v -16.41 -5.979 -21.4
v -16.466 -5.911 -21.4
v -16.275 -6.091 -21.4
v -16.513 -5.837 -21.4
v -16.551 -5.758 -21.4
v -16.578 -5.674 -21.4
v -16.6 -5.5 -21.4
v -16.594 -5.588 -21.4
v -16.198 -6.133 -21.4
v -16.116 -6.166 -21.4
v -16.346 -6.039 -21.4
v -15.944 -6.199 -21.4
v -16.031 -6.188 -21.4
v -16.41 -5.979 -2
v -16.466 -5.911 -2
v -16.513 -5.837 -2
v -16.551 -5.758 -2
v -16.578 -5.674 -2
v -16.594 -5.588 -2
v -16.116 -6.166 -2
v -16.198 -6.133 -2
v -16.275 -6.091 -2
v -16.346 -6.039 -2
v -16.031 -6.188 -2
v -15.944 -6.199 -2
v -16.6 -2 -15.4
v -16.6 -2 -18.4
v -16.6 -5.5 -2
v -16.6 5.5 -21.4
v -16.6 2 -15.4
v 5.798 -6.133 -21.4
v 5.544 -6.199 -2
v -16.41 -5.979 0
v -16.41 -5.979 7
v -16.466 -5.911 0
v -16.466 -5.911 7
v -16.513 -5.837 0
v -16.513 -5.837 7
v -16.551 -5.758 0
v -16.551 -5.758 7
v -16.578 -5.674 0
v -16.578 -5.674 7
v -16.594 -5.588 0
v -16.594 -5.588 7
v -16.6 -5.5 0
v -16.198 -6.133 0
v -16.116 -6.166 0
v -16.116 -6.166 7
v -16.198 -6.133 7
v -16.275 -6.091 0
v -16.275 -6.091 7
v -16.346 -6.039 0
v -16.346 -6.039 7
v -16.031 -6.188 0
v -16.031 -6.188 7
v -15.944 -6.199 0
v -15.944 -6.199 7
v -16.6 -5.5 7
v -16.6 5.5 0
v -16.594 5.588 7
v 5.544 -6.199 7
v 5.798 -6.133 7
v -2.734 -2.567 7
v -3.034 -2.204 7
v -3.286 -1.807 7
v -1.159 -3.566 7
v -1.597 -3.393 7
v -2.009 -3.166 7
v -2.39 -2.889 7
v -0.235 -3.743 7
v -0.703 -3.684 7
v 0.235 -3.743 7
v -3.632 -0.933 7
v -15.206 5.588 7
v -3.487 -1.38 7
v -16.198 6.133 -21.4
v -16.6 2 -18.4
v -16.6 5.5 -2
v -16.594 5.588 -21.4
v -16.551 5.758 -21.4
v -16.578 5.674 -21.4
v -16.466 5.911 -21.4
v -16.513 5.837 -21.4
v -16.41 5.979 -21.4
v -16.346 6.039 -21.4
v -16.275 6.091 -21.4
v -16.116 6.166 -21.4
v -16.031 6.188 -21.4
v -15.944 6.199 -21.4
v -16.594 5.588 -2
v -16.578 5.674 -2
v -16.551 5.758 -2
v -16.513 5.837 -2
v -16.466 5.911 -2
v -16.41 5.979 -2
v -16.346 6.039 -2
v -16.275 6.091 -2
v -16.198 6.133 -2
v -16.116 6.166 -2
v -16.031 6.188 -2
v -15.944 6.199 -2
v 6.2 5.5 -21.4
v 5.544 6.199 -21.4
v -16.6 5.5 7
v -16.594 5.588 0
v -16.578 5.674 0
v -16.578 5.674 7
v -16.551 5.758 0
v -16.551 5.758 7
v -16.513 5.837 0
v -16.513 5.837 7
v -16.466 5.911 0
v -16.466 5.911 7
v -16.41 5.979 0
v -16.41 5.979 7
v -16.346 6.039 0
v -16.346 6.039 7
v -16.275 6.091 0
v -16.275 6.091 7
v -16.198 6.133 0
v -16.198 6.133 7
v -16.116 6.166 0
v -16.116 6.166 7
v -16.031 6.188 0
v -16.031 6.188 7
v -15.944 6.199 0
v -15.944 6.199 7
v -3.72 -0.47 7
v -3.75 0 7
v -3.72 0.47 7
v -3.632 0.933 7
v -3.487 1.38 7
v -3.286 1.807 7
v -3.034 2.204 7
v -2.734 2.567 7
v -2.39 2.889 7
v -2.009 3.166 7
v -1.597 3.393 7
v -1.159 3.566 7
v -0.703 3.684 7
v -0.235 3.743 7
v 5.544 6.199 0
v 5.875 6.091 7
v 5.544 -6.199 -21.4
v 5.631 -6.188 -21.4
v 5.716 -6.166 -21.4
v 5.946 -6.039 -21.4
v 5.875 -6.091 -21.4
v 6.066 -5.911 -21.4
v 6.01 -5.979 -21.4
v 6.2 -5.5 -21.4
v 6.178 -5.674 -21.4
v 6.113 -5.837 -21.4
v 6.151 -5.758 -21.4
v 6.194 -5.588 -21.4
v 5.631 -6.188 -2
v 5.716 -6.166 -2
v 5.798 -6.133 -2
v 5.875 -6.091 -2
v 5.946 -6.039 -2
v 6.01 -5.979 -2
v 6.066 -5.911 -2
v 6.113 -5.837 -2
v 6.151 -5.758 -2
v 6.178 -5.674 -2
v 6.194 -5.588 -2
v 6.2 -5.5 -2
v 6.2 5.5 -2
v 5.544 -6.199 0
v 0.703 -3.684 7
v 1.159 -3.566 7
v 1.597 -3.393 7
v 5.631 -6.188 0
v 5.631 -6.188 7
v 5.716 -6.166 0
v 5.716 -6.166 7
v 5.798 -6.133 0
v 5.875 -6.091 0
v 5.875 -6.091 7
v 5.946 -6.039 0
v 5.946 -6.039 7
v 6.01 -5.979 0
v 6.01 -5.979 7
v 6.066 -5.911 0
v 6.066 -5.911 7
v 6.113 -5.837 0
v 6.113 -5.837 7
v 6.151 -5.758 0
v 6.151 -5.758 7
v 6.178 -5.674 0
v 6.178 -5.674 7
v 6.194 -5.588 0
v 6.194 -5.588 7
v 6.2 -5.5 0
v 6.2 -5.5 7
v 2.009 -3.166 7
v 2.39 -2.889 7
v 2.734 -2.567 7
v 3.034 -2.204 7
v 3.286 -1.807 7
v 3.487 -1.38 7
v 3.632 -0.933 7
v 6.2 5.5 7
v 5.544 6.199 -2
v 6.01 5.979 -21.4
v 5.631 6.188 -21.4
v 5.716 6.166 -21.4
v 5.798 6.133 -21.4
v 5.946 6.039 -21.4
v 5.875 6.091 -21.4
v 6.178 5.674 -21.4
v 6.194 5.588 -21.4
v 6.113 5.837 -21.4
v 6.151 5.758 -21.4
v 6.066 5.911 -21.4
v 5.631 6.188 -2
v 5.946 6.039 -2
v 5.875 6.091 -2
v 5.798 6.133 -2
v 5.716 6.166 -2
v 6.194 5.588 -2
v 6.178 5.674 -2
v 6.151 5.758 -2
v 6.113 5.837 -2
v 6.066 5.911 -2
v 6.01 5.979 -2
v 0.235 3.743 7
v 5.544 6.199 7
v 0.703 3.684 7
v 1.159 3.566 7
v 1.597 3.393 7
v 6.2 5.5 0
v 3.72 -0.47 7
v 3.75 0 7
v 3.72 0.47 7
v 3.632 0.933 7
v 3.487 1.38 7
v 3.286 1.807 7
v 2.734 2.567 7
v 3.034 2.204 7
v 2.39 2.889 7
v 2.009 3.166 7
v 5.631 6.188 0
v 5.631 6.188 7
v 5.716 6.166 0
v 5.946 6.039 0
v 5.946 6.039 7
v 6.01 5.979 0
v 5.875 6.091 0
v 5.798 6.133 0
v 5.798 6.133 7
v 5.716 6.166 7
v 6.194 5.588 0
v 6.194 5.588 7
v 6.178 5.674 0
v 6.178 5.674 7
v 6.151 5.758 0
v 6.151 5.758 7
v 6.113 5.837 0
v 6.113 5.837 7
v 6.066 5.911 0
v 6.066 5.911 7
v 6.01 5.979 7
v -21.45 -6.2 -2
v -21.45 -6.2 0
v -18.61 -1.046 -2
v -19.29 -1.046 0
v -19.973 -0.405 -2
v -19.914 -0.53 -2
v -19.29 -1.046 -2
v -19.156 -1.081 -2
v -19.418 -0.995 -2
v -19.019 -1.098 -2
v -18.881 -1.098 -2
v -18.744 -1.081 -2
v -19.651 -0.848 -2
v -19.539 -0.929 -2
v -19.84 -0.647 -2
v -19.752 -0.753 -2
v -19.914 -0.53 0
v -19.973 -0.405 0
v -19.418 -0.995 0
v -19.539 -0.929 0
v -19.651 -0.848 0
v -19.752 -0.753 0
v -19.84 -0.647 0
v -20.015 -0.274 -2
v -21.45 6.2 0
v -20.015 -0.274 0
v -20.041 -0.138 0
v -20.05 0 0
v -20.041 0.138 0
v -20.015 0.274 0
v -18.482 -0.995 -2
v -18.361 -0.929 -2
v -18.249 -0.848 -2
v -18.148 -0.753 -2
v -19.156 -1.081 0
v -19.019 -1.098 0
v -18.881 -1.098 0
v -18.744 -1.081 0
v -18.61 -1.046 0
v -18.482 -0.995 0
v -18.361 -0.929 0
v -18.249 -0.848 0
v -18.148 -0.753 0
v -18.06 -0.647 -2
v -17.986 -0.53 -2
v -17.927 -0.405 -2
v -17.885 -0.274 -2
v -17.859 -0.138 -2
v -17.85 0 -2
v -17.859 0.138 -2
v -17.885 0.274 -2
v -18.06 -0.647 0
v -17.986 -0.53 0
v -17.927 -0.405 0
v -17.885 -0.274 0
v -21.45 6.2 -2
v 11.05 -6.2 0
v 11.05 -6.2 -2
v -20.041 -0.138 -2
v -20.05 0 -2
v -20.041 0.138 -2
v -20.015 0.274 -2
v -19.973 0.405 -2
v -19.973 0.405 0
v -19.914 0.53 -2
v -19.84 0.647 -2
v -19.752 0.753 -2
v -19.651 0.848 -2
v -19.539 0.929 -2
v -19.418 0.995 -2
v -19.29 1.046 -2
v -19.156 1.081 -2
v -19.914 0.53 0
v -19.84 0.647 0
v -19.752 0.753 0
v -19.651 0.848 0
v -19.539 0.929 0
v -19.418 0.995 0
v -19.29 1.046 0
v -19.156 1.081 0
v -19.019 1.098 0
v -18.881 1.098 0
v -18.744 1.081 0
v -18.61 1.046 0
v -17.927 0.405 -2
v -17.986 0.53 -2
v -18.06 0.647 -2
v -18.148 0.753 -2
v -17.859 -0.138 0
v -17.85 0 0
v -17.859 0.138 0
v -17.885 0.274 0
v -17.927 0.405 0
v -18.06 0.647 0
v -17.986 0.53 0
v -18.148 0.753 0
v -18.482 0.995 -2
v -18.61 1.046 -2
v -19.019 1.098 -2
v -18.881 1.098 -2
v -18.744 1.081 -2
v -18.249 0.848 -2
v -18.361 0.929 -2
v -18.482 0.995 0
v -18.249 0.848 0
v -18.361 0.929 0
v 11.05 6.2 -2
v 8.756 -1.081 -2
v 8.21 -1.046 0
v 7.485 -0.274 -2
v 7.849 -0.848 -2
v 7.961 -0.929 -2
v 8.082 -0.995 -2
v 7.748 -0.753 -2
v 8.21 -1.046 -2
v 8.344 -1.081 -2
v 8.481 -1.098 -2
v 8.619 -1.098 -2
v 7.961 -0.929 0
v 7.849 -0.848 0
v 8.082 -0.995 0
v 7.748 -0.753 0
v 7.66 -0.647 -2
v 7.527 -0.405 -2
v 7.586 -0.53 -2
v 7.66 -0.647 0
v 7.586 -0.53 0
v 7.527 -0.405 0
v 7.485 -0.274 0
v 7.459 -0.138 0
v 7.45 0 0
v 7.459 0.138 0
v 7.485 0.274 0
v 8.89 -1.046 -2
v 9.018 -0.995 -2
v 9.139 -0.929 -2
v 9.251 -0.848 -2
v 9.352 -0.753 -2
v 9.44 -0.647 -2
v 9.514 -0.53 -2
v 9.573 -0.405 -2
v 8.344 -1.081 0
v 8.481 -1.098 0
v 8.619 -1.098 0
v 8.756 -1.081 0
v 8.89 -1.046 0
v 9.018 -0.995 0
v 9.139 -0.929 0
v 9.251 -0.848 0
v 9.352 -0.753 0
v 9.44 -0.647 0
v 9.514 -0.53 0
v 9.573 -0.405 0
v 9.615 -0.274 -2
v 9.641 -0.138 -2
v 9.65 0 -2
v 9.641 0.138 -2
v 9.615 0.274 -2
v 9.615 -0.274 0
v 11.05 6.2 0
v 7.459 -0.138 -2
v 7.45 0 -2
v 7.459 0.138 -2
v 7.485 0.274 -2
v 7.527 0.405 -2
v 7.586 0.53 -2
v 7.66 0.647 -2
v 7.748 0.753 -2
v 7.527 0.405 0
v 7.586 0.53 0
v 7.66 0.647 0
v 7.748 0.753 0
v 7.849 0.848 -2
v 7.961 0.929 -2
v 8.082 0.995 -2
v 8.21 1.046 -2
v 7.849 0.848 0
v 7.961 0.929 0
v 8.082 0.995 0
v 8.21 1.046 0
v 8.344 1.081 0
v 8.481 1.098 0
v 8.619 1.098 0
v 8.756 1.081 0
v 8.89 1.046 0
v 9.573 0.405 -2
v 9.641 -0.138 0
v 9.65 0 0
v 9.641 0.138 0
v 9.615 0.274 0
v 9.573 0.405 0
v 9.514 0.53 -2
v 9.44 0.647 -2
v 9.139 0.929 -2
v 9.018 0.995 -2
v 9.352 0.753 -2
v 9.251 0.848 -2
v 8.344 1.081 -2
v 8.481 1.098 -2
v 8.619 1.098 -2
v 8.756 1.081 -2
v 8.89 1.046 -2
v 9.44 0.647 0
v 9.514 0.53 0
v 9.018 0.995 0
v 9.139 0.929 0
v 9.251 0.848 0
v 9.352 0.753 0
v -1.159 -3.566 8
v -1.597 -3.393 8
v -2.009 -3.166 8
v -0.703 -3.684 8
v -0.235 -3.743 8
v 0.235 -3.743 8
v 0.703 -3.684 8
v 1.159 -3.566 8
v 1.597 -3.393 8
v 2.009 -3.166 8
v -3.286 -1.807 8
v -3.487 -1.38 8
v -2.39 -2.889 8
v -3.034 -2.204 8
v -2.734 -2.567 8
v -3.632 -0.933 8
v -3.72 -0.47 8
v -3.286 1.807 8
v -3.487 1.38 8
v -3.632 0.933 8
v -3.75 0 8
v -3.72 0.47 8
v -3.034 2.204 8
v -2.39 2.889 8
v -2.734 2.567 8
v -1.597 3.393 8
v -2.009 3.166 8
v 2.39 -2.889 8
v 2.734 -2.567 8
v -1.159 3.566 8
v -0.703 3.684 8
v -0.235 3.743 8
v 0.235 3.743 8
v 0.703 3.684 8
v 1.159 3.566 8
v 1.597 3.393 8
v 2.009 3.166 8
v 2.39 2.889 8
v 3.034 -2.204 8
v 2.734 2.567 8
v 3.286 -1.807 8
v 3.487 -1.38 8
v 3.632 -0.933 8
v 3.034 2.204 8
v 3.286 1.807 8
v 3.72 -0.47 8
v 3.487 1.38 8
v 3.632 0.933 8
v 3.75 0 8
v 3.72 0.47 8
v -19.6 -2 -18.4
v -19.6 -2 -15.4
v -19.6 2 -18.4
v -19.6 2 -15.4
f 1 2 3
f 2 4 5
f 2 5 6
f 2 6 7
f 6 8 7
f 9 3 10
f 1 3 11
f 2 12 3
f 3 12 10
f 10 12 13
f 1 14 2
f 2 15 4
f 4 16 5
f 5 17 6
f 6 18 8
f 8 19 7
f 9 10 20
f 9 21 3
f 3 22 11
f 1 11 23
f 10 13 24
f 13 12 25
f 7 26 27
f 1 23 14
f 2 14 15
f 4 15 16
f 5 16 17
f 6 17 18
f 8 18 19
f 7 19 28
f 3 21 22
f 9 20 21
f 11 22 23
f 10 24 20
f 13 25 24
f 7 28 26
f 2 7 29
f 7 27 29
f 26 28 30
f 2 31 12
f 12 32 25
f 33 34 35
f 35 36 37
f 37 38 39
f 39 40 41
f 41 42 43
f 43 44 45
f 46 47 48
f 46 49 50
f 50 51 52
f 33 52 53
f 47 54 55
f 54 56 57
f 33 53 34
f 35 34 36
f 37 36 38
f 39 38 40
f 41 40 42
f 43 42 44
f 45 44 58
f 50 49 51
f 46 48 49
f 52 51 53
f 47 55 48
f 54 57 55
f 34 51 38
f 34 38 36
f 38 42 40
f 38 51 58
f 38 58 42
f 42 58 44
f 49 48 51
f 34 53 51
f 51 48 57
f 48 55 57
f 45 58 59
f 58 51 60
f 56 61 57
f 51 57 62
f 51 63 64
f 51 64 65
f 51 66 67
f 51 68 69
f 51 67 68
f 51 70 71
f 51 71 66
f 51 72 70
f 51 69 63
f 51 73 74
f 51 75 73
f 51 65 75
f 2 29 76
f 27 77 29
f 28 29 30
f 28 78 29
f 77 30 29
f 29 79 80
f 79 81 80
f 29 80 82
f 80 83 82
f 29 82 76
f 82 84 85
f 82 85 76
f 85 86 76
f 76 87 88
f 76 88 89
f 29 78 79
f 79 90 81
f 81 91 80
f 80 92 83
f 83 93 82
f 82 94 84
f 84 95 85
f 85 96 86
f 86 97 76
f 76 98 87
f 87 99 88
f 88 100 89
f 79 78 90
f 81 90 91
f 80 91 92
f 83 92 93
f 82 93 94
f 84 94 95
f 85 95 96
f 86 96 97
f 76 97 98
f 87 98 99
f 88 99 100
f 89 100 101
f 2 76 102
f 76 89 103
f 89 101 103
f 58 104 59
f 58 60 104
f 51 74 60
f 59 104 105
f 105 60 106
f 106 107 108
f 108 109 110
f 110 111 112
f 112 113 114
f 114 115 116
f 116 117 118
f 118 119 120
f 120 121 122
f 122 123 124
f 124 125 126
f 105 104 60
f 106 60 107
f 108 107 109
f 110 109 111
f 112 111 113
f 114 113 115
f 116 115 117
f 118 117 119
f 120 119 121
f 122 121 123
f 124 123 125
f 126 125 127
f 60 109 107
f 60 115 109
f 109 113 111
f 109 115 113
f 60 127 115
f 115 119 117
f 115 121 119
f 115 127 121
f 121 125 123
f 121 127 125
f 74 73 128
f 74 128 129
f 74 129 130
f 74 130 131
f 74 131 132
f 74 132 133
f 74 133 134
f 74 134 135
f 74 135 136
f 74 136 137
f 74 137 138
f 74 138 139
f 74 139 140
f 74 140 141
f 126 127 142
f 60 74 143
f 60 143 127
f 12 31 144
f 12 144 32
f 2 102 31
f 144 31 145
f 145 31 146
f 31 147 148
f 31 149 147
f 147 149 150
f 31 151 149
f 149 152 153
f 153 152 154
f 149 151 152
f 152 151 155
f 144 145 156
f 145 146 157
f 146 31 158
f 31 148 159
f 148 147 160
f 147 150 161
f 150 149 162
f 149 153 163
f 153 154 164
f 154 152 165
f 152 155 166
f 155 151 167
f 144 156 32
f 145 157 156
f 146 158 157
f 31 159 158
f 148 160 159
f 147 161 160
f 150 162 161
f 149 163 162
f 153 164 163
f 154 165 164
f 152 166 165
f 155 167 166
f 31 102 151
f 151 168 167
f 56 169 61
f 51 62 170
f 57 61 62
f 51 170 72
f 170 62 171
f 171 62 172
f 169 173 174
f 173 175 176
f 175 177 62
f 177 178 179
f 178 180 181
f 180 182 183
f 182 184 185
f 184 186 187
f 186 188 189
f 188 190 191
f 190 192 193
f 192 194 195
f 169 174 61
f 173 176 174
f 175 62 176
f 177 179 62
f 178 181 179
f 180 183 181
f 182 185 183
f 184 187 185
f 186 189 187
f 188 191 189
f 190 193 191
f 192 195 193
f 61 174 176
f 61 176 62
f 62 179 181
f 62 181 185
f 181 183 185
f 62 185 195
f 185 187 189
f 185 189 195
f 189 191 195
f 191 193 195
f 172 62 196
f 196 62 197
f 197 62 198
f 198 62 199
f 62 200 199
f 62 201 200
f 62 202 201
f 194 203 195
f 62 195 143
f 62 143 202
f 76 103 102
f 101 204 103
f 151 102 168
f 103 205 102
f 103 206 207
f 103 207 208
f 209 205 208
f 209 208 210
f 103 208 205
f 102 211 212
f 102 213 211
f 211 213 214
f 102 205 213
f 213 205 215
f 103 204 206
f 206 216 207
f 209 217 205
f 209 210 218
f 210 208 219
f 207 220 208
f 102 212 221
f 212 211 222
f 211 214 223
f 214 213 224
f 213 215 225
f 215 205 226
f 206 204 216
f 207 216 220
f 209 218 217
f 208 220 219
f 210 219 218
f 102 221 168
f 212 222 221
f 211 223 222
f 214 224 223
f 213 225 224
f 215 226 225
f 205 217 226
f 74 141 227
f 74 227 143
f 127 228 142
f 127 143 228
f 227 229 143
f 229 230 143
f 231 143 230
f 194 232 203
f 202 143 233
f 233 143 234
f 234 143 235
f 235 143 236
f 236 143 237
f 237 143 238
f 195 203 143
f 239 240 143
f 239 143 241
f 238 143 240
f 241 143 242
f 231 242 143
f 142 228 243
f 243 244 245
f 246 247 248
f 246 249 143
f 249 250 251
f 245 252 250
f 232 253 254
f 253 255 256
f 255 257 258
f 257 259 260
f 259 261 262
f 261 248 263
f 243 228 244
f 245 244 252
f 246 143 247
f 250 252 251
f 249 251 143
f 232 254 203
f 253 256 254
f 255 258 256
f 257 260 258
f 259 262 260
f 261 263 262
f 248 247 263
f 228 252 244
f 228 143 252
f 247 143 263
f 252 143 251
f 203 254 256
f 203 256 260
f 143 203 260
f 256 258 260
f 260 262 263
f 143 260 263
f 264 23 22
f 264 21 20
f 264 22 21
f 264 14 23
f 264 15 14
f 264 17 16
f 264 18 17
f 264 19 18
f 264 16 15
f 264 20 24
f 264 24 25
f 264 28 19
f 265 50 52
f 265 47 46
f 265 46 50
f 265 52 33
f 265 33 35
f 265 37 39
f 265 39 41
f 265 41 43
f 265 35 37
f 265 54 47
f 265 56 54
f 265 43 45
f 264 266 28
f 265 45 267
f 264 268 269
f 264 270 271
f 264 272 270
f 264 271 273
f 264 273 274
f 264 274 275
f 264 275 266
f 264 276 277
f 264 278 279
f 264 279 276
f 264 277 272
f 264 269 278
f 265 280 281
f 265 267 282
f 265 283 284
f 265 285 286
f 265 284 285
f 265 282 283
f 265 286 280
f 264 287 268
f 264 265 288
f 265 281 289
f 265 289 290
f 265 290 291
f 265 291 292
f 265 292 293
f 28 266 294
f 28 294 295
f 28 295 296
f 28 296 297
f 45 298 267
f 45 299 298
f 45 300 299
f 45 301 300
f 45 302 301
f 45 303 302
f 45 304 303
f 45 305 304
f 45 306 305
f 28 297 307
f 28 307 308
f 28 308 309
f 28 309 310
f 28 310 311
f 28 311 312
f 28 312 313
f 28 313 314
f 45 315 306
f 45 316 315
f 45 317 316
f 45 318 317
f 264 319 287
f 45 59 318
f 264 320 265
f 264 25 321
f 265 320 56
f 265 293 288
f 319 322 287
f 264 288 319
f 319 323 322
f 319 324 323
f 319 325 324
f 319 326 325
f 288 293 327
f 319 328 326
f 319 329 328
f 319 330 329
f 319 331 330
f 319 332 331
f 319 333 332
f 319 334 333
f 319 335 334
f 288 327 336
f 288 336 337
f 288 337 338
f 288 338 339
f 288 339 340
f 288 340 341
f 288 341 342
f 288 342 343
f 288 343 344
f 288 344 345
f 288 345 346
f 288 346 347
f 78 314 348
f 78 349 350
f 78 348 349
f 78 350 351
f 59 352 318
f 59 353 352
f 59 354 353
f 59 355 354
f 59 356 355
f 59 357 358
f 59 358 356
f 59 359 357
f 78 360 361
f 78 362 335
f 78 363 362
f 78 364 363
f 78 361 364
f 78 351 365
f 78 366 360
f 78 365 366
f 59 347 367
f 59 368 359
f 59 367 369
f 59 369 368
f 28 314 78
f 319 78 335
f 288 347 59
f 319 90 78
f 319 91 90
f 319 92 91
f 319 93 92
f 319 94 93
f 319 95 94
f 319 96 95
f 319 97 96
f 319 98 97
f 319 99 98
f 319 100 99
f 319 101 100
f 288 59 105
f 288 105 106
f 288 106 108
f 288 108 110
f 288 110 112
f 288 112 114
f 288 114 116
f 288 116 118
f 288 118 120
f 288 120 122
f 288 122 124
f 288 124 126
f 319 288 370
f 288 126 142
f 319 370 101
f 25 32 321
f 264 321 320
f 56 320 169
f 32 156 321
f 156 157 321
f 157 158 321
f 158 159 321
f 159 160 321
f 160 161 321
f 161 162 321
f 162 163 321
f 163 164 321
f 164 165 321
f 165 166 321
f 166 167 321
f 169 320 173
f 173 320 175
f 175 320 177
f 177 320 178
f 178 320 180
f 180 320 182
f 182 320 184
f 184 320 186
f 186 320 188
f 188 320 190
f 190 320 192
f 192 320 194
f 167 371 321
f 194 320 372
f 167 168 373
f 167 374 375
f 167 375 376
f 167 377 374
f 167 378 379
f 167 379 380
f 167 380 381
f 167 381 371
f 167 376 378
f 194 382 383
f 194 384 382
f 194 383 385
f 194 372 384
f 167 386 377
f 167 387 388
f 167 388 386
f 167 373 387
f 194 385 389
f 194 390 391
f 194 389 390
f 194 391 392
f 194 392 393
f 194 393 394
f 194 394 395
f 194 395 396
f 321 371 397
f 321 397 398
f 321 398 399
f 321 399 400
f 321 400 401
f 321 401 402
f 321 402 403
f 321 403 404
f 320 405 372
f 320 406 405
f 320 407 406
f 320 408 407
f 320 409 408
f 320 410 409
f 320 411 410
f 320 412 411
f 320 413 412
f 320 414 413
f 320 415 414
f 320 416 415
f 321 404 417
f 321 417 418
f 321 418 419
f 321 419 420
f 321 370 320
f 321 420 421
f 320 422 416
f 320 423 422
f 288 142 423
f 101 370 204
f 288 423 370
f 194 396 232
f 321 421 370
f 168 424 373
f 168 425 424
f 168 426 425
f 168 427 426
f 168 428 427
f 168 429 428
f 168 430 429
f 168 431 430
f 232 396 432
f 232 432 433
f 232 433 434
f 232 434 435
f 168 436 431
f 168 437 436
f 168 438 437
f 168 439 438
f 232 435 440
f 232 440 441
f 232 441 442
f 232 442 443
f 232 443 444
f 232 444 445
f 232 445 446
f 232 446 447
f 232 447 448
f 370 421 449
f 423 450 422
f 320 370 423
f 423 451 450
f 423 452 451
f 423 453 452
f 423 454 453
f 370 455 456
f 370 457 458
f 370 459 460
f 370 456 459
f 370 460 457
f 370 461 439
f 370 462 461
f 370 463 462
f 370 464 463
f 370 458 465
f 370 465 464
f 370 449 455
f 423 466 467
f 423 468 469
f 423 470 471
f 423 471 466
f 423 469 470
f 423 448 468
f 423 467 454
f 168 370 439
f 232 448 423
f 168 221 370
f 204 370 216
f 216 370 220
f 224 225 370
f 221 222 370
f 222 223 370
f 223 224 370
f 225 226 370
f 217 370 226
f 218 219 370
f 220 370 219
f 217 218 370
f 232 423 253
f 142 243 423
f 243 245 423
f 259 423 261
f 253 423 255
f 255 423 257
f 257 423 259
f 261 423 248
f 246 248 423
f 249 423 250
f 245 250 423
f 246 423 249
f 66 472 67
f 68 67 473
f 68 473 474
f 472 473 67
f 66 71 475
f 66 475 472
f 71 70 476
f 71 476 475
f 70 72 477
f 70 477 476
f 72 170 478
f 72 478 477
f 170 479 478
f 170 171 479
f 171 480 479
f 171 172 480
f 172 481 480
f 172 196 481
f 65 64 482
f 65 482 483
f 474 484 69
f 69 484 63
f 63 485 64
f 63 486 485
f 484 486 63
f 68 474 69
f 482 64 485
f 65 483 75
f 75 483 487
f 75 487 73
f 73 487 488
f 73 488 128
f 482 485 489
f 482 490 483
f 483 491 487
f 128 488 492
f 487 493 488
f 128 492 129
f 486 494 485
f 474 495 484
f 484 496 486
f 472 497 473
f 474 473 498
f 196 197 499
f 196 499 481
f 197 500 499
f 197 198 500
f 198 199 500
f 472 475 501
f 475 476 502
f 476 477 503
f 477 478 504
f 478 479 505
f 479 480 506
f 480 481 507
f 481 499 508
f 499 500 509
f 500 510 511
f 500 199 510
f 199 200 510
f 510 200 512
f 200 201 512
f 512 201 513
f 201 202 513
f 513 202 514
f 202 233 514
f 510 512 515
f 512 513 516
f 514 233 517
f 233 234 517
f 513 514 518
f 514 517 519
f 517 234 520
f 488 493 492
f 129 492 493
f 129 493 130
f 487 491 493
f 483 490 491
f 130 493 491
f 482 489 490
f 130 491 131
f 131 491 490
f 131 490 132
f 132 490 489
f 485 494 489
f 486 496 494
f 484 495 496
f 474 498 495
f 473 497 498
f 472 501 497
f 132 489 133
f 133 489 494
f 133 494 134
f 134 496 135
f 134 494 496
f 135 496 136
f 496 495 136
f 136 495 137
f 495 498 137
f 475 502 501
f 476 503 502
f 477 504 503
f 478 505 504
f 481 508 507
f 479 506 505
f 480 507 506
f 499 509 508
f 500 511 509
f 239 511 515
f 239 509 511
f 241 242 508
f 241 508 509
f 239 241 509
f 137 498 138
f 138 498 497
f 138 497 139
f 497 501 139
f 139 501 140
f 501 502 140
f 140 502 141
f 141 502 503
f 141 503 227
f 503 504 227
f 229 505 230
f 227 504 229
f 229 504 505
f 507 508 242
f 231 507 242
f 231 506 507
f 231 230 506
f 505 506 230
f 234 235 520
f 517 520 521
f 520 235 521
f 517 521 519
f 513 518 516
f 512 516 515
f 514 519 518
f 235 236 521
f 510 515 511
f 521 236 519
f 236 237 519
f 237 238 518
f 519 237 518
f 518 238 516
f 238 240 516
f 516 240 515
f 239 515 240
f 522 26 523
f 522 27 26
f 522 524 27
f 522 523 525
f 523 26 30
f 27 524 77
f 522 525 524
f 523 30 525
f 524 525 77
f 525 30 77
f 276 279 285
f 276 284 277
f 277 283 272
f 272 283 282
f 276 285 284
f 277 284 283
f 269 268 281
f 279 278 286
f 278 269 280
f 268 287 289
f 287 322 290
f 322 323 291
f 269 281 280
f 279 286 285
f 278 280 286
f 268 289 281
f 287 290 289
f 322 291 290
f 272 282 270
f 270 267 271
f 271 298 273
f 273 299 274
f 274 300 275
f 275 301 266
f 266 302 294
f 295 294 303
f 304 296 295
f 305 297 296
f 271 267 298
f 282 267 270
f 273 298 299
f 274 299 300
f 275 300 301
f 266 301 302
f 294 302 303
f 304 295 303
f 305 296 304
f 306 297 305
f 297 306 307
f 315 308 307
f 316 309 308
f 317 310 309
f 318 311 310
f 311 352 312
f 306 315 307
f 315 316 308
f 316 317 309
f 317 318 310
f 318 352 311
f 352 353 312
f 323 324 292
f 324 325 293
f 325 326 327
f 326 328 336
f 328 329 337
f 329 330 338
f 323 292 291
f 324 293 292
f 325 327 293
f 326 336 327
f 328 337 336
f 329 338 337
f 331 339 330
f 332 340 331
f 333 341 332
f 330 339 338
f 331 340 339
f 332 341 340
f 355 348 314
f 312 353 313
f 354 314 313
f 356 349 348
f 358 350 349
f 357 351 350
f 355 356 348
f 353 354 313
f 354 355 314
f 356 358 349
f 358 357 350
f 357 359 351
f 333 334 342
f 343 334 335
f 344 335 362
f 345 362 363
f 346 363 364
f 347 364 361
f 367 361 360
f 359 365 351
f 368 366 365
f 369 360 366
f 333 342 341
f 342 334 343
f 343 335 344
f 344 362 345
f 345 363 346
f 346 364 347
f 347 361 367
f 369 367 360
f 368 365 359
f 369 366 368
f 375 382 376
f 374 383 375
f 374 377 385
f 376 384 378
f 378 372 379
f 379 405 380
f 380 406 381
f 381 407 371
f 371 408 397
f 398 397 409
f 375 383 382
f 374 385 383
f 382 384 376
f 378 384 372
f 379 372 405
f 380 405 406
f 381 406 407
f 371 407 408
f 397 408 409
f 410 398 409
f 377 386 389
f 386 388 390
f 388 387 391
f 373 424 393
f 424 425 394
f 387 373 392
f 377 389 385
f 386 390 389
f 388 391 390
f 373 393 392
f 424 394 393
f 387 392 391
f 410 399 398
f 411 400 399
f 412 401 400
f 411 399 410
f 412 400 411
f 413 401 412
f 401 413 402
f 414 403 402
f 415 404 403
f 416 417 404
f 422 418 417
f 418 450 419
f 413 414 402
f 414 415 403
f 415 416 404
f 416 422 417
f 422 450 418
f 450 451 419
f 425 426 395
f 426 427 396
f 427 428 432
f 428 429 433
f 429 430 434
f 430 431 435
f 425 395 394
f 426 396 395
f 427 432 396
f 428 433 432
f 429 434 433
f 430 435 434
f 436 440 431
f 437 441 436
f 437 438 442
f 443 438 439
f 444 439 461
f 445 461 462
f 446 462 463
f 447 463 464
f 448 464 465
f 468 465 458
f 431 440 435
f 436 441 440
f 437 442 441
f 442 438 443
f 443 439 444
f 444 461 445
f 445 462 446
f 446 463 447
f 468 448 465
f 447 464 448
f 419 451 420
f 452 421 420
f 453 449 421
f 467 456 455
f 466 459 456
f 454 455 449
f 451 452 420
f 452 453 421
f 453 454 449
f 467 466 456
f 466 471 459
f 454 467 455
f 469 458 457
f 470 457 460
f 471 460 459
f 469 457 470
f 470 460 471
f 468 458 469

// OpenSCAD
$fn = 50;

difference() {
	union() {
		translate(v = [-5.2, 0, -21.4]) {
			hull() {
				translate(v = [-10.700000000000001, 5.5, 0]) {
					cylinder(h = 28.4, r = 0.7);
				}
				translate(v = [10.700000000000001, 5.5, 0]) {
					cylinder(h = 28.4, r = 0.7);
				}
				translate(v = [-10.700000000000001, -5.5, 0]) {
					cylinder(h = 28.4, r = 0.7);
				}
				translate(v = [10.700000000000001, -5.5, 0]) {
					cylinder(h = 28.4, r = 0.7);
				}
			}
		}
		translate(v = [-21.45, -6.2, -2]) {
			cube(size = [32.5, 12.4, 2]);
		}
		translate(v = [0, 0, 7.0]) {
			cylinder(h = 1, r = 3.75);
		}
		translate(v = [-19.6, -2.0, -18.4]) {
			cube(size = [4, 4, 3]);
		}
	}
	union() {
		translate(v = [-18.95, 0, -4]) {
			cylinder(h = 5, r = 1.1);
		}
		translate(v = [8.55, 0, -4]) {
			cylinder(h = 5, r = 1.1);
		}
	}
}
